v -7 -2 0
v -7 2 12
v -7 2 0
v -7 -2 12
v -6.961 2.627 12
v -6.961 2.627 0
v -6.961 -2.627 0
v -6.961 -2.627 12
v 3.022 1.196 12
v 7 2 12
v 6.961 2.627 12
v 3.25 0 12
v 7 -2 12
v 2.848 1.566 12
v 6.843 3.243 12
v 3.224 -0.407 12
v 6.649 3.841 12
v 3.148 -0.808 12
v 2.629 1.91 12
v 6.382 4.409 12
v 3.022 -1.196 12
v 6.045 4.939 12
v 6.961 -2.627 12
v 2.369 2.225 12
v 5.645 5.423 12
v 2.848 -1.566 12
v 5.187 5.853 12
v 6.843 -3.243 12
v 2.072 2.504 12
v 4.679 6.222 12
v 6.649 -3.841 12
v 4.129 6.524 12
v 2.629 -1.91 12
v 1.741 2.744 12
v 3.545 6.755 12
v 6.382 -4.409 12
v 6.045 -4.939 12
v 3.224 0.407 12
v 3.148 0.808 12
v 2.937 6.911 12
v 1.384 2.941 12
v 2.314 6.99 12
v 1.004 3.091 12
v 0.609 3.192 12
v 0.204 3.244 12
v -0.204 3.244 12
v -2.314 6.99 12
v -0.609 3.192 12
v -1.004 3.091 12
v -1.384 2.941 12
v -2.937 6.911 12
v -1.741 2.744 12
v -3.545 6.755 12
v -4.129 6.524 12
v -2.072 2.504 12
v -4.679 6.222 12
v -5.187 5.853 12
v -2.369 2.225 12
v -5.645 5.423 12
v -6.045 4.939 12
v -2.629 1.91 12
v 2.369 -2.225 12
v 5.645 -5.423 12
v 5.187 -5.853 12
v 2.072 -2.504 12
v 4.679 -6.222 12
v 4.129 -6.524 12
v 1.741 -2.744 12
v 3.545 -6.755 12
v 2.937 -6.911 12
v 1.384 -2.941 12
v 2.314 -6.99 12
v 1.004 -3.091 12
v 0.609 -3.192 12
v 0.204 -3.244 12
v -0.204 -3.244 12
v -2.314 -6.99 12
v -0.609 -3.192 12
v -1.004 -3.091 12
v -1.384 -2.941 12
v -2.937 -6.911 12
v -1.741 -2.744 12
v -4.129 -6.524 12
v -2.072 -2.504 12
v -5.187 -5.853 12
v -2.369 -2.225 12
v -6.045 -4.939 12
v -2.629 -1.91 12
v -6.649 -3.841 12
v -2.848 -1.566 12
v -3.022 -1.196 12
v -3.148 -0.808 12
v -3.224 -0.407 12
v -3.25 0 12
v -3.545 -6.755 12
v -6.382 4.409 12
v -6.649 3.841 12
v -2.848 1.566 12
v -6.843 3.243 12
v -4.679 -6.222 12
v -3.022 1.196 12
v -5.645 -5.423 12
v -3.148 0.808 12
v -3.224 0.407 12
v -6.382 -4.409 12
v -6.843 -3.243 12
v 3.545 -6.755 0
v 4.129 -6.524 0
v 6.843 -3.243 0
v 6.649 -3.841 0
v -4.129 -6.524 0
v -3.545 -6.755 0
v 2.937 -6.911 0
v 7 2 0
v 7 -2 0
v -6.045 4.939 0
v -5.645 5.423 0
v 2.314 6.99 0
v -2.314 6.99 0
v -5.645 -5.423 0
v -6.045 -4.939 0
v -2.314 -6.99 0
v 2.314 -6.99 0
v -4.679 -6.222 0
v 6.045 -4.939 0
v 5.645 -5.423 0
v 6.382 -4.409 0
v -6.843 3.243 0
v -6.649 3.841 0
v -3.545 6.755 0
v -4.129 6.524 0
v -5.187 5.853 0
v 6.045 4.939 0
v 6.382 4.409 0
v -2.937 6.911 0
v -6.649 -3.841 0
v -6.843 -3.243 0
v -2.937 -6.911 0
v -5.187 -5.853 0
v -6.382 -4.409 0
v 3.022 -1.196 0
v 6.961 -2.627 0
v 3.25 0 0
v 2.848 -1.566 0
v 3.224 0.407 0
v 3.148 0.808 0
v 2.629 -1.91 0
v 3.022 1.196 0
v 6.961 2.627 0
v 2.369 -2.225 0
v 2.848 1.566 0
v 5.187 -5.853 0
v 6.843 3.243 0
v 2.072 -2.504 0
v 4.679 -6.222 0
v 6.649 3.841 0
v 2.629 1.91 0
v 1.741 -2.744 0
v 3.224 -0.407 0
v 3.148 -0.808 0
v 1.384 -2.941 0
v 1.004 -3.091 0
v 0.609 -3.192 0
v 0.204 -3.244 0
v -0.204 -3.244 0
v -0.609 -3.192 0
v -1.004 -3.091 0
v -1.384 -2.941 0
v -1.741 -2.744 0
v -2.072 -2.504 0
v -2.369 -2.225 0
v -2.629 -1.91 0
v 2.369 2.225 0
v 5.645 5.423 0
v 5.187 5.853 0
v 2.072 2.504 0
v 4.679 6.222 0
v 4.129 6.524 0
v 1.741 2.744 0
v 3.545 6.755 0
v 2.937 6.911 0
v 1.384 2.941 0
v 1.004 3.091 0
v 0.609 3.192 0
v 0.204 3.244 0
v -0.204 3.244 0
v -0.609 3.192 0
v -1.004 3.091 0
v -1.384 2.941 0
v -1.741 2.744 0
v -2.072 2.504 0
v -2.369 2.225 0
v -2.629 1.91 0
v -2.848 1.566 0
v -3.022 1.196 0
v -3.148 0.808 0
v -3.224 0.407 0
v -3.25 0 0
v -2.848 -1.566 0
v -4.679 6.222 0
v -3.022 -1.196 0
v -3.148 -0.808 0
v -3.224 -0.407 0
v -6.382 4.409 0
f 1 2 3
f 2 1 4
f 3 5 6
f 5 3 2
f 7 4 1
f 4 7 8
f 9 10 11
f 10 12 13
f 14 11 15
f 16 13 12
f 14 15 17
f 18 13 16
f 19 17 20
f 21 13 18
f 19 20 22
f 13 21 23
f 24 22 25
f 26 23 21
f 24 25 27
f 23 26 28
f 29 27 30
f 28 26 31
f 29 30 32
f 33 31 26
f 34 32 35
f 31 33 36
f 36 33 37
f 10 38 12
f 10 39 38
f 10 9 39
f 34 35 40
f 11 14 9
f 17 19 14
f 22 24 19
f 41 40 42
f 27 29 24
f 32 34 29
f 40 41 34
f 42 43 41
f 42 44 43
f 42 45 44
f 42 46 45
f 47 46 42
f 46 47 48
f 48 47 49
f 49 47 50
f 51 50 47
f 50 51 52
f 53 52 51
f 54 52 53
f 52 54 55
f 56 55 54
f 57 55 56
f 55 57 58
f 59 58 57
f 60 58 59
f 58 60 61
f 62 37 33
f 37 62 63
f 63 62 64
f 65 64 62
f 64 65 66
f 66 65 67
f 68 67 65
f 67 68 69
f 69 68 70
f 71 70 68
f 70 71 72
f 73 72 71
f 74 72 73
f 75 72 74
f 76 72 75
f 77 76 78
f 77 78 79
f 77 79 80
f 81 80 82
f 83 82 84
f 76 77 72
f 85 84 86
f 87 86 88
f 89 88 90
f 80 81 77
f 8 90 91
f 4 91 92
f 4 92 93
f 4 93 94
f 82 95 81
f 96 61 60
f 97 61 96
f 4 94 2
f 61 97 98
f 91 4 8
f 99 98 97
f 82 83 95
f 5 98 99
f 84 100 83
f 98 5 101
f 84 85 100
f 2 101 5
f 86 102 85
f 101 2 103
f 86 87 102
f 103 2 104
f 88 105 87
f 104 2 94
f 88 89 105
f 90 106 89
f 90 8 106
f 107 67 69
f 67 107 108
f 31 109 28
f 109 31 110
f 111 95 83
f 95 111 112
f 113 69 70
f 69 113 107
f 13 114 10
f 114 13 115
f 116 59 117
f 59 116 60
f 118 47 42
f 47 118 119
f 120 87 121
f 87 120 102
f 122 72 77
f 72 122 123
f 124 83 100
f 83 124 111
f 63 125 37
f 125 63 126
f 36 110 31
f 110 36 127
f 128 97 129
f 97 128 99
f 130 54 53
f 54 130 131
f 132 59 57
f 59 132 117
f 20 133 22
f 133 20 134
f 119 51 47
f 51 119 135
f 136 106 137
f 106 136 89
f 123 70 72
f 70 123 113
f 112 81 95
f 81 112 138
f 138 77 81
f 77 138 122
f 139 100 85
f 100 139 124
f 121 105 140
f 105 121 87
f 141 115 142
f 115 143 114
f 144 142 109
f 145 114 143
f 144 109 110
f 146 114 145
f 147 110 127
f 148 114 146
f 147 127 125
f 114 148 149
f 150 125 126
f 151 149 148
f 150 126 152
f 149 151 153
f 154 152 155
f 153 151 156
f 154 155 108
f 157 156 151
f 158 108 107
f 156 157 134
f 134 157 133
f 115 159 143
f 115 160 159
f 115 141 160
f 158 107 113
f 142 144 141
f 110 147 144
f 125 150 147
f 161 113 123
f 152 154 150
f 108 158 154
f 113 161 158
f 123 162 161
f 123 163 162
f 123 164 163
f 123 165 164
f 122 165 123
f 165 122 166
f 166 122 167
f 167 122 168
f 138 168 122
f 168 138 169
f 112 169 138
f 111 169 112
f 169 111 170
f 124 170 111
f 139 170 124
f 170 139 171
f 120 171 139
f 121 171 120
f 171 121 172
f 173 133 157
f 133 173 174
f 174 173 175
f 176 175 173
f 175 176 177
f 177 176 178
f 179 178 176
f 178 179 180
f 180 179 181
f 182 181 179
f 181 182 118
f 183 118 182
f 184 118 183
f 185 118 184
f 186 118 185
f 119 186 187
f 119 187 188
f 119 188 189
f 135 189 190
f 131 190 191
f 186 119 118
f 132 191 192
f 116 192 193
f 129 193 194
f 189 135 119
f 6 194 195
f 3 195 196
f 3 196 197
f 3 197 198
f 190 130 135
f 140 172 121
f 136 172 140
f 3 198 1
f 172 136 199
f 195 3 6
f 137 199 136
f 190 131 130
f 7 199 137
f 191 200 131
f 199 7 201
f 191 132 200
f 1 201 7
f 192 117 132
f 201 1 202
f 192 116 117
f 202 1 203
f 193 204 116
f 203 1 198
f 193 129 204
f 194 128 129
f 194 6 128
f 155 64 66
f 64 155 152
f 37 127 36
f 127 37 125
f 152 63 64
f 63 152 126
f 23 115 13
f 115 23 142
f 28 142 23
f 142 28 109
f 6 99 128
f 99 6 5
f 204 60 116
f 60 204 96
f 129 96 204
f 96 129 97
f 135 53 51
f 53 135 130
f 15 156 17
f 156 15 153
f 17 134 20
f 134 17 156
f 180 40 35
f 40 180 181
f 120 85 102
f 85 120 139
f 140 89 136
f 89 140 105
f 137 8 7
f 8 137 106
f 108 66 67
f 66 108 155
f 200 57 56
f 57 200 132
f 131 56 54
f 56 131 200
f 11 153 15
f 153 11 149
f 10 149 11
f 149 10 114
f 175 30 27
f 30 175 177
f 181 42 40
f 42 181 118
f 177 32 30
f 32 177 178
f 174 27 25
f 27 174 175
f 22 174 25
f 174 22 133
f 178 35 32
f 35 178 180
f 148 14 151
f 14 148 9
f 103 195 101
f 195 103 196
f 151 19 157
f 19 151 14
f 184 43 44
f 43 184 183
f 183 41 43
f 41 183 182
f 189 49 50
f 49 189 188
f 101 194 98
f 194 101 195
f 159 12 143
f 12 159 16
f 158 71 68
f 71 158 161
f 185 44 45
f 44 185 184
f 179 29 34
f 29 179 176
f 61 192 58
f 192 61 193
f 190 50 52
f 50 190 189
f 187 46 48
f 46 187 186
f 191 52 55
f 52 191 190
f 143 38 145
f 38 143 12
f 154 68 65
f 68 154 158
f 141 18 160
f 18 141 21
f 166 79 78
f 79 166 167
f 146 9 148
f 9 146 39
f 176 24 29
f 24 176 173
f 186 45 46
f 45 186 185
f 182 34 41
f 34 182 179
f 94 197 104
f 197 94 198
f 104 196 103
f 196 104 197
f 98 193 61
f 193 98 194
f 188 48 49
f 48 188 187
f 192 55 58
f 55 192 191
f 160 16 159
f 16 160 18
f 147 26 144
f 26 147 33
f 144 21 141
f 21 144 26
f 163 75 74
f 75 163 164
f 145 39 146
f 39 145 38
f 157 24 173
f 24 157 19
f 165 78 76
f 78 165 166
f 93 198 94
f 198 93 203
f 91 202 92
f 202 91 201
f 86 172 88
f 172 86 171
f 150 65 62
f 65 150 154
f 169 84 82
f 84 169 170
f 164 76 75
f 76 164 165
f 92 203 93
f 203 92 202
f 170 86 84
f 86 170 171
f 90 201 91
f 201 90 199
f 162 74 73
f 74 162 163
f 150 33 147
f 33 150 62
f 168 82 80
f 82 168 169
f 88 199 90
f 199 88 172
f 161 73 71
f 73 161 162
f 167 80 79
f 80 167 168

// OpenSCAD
$fn = 50;


difference() {
	union() {
		translate(v = [0, 0, 0]) {
			rotate(a = [0, 0, 0]) {
				hull() {
					translate(v = [-2.0000000000, 2.0000000000, 0]) {
						rotate(a = [0, 0, 0]) {
							translate(v = [0, 0, 0]) {
								rotate(a = [0, 0, 0]) {
									cylinder(h = 12, r = 5);
								}
							}
						}
					}
					translate(v = [2.0000000000, 2.0000000000, 0]) {
						rotate(a = [0, 0, 0]) {
							translate(v = [0, 0, 0]) {
								rotate(a = [0, 0, 0]) {
									cylinder(h = 12, r = 5);
								}
							}
						}
					}
					translate(v = [-2.0000000000, -2.0000000000, 0]) {
						rotate(a = [0, 0, 0]) {
							translate(v = [0, 0, 0]) {
								rotate(a = [0, 0, 0]) {
									cylinder(h = 12, r = 5);
								}
							}
						}
					}
					translate(v = [2.0000000000, -2.0000000000, 0]) {
						rotate(a = [0, 0, 0]) {
							translate(v = [0, 0, 0]) {
								rotate(a = [0, 0, 0]) {
									cylinder(h = 12, r = 5);
								}
							}
						}
					}
				}
			}
		}
	}
	union() {
		translate(v = [0.0000000000, 0.0000000000, 0]) {
			rotate(a = [0, 0, 0]) {
				translate(v = [0, 0, -50]) {
					rotate(a = [0, 0, 0]) {
						cylinder(h = 100, r = 3.2500000000);
					}
				}
			}
		}
	}
}
